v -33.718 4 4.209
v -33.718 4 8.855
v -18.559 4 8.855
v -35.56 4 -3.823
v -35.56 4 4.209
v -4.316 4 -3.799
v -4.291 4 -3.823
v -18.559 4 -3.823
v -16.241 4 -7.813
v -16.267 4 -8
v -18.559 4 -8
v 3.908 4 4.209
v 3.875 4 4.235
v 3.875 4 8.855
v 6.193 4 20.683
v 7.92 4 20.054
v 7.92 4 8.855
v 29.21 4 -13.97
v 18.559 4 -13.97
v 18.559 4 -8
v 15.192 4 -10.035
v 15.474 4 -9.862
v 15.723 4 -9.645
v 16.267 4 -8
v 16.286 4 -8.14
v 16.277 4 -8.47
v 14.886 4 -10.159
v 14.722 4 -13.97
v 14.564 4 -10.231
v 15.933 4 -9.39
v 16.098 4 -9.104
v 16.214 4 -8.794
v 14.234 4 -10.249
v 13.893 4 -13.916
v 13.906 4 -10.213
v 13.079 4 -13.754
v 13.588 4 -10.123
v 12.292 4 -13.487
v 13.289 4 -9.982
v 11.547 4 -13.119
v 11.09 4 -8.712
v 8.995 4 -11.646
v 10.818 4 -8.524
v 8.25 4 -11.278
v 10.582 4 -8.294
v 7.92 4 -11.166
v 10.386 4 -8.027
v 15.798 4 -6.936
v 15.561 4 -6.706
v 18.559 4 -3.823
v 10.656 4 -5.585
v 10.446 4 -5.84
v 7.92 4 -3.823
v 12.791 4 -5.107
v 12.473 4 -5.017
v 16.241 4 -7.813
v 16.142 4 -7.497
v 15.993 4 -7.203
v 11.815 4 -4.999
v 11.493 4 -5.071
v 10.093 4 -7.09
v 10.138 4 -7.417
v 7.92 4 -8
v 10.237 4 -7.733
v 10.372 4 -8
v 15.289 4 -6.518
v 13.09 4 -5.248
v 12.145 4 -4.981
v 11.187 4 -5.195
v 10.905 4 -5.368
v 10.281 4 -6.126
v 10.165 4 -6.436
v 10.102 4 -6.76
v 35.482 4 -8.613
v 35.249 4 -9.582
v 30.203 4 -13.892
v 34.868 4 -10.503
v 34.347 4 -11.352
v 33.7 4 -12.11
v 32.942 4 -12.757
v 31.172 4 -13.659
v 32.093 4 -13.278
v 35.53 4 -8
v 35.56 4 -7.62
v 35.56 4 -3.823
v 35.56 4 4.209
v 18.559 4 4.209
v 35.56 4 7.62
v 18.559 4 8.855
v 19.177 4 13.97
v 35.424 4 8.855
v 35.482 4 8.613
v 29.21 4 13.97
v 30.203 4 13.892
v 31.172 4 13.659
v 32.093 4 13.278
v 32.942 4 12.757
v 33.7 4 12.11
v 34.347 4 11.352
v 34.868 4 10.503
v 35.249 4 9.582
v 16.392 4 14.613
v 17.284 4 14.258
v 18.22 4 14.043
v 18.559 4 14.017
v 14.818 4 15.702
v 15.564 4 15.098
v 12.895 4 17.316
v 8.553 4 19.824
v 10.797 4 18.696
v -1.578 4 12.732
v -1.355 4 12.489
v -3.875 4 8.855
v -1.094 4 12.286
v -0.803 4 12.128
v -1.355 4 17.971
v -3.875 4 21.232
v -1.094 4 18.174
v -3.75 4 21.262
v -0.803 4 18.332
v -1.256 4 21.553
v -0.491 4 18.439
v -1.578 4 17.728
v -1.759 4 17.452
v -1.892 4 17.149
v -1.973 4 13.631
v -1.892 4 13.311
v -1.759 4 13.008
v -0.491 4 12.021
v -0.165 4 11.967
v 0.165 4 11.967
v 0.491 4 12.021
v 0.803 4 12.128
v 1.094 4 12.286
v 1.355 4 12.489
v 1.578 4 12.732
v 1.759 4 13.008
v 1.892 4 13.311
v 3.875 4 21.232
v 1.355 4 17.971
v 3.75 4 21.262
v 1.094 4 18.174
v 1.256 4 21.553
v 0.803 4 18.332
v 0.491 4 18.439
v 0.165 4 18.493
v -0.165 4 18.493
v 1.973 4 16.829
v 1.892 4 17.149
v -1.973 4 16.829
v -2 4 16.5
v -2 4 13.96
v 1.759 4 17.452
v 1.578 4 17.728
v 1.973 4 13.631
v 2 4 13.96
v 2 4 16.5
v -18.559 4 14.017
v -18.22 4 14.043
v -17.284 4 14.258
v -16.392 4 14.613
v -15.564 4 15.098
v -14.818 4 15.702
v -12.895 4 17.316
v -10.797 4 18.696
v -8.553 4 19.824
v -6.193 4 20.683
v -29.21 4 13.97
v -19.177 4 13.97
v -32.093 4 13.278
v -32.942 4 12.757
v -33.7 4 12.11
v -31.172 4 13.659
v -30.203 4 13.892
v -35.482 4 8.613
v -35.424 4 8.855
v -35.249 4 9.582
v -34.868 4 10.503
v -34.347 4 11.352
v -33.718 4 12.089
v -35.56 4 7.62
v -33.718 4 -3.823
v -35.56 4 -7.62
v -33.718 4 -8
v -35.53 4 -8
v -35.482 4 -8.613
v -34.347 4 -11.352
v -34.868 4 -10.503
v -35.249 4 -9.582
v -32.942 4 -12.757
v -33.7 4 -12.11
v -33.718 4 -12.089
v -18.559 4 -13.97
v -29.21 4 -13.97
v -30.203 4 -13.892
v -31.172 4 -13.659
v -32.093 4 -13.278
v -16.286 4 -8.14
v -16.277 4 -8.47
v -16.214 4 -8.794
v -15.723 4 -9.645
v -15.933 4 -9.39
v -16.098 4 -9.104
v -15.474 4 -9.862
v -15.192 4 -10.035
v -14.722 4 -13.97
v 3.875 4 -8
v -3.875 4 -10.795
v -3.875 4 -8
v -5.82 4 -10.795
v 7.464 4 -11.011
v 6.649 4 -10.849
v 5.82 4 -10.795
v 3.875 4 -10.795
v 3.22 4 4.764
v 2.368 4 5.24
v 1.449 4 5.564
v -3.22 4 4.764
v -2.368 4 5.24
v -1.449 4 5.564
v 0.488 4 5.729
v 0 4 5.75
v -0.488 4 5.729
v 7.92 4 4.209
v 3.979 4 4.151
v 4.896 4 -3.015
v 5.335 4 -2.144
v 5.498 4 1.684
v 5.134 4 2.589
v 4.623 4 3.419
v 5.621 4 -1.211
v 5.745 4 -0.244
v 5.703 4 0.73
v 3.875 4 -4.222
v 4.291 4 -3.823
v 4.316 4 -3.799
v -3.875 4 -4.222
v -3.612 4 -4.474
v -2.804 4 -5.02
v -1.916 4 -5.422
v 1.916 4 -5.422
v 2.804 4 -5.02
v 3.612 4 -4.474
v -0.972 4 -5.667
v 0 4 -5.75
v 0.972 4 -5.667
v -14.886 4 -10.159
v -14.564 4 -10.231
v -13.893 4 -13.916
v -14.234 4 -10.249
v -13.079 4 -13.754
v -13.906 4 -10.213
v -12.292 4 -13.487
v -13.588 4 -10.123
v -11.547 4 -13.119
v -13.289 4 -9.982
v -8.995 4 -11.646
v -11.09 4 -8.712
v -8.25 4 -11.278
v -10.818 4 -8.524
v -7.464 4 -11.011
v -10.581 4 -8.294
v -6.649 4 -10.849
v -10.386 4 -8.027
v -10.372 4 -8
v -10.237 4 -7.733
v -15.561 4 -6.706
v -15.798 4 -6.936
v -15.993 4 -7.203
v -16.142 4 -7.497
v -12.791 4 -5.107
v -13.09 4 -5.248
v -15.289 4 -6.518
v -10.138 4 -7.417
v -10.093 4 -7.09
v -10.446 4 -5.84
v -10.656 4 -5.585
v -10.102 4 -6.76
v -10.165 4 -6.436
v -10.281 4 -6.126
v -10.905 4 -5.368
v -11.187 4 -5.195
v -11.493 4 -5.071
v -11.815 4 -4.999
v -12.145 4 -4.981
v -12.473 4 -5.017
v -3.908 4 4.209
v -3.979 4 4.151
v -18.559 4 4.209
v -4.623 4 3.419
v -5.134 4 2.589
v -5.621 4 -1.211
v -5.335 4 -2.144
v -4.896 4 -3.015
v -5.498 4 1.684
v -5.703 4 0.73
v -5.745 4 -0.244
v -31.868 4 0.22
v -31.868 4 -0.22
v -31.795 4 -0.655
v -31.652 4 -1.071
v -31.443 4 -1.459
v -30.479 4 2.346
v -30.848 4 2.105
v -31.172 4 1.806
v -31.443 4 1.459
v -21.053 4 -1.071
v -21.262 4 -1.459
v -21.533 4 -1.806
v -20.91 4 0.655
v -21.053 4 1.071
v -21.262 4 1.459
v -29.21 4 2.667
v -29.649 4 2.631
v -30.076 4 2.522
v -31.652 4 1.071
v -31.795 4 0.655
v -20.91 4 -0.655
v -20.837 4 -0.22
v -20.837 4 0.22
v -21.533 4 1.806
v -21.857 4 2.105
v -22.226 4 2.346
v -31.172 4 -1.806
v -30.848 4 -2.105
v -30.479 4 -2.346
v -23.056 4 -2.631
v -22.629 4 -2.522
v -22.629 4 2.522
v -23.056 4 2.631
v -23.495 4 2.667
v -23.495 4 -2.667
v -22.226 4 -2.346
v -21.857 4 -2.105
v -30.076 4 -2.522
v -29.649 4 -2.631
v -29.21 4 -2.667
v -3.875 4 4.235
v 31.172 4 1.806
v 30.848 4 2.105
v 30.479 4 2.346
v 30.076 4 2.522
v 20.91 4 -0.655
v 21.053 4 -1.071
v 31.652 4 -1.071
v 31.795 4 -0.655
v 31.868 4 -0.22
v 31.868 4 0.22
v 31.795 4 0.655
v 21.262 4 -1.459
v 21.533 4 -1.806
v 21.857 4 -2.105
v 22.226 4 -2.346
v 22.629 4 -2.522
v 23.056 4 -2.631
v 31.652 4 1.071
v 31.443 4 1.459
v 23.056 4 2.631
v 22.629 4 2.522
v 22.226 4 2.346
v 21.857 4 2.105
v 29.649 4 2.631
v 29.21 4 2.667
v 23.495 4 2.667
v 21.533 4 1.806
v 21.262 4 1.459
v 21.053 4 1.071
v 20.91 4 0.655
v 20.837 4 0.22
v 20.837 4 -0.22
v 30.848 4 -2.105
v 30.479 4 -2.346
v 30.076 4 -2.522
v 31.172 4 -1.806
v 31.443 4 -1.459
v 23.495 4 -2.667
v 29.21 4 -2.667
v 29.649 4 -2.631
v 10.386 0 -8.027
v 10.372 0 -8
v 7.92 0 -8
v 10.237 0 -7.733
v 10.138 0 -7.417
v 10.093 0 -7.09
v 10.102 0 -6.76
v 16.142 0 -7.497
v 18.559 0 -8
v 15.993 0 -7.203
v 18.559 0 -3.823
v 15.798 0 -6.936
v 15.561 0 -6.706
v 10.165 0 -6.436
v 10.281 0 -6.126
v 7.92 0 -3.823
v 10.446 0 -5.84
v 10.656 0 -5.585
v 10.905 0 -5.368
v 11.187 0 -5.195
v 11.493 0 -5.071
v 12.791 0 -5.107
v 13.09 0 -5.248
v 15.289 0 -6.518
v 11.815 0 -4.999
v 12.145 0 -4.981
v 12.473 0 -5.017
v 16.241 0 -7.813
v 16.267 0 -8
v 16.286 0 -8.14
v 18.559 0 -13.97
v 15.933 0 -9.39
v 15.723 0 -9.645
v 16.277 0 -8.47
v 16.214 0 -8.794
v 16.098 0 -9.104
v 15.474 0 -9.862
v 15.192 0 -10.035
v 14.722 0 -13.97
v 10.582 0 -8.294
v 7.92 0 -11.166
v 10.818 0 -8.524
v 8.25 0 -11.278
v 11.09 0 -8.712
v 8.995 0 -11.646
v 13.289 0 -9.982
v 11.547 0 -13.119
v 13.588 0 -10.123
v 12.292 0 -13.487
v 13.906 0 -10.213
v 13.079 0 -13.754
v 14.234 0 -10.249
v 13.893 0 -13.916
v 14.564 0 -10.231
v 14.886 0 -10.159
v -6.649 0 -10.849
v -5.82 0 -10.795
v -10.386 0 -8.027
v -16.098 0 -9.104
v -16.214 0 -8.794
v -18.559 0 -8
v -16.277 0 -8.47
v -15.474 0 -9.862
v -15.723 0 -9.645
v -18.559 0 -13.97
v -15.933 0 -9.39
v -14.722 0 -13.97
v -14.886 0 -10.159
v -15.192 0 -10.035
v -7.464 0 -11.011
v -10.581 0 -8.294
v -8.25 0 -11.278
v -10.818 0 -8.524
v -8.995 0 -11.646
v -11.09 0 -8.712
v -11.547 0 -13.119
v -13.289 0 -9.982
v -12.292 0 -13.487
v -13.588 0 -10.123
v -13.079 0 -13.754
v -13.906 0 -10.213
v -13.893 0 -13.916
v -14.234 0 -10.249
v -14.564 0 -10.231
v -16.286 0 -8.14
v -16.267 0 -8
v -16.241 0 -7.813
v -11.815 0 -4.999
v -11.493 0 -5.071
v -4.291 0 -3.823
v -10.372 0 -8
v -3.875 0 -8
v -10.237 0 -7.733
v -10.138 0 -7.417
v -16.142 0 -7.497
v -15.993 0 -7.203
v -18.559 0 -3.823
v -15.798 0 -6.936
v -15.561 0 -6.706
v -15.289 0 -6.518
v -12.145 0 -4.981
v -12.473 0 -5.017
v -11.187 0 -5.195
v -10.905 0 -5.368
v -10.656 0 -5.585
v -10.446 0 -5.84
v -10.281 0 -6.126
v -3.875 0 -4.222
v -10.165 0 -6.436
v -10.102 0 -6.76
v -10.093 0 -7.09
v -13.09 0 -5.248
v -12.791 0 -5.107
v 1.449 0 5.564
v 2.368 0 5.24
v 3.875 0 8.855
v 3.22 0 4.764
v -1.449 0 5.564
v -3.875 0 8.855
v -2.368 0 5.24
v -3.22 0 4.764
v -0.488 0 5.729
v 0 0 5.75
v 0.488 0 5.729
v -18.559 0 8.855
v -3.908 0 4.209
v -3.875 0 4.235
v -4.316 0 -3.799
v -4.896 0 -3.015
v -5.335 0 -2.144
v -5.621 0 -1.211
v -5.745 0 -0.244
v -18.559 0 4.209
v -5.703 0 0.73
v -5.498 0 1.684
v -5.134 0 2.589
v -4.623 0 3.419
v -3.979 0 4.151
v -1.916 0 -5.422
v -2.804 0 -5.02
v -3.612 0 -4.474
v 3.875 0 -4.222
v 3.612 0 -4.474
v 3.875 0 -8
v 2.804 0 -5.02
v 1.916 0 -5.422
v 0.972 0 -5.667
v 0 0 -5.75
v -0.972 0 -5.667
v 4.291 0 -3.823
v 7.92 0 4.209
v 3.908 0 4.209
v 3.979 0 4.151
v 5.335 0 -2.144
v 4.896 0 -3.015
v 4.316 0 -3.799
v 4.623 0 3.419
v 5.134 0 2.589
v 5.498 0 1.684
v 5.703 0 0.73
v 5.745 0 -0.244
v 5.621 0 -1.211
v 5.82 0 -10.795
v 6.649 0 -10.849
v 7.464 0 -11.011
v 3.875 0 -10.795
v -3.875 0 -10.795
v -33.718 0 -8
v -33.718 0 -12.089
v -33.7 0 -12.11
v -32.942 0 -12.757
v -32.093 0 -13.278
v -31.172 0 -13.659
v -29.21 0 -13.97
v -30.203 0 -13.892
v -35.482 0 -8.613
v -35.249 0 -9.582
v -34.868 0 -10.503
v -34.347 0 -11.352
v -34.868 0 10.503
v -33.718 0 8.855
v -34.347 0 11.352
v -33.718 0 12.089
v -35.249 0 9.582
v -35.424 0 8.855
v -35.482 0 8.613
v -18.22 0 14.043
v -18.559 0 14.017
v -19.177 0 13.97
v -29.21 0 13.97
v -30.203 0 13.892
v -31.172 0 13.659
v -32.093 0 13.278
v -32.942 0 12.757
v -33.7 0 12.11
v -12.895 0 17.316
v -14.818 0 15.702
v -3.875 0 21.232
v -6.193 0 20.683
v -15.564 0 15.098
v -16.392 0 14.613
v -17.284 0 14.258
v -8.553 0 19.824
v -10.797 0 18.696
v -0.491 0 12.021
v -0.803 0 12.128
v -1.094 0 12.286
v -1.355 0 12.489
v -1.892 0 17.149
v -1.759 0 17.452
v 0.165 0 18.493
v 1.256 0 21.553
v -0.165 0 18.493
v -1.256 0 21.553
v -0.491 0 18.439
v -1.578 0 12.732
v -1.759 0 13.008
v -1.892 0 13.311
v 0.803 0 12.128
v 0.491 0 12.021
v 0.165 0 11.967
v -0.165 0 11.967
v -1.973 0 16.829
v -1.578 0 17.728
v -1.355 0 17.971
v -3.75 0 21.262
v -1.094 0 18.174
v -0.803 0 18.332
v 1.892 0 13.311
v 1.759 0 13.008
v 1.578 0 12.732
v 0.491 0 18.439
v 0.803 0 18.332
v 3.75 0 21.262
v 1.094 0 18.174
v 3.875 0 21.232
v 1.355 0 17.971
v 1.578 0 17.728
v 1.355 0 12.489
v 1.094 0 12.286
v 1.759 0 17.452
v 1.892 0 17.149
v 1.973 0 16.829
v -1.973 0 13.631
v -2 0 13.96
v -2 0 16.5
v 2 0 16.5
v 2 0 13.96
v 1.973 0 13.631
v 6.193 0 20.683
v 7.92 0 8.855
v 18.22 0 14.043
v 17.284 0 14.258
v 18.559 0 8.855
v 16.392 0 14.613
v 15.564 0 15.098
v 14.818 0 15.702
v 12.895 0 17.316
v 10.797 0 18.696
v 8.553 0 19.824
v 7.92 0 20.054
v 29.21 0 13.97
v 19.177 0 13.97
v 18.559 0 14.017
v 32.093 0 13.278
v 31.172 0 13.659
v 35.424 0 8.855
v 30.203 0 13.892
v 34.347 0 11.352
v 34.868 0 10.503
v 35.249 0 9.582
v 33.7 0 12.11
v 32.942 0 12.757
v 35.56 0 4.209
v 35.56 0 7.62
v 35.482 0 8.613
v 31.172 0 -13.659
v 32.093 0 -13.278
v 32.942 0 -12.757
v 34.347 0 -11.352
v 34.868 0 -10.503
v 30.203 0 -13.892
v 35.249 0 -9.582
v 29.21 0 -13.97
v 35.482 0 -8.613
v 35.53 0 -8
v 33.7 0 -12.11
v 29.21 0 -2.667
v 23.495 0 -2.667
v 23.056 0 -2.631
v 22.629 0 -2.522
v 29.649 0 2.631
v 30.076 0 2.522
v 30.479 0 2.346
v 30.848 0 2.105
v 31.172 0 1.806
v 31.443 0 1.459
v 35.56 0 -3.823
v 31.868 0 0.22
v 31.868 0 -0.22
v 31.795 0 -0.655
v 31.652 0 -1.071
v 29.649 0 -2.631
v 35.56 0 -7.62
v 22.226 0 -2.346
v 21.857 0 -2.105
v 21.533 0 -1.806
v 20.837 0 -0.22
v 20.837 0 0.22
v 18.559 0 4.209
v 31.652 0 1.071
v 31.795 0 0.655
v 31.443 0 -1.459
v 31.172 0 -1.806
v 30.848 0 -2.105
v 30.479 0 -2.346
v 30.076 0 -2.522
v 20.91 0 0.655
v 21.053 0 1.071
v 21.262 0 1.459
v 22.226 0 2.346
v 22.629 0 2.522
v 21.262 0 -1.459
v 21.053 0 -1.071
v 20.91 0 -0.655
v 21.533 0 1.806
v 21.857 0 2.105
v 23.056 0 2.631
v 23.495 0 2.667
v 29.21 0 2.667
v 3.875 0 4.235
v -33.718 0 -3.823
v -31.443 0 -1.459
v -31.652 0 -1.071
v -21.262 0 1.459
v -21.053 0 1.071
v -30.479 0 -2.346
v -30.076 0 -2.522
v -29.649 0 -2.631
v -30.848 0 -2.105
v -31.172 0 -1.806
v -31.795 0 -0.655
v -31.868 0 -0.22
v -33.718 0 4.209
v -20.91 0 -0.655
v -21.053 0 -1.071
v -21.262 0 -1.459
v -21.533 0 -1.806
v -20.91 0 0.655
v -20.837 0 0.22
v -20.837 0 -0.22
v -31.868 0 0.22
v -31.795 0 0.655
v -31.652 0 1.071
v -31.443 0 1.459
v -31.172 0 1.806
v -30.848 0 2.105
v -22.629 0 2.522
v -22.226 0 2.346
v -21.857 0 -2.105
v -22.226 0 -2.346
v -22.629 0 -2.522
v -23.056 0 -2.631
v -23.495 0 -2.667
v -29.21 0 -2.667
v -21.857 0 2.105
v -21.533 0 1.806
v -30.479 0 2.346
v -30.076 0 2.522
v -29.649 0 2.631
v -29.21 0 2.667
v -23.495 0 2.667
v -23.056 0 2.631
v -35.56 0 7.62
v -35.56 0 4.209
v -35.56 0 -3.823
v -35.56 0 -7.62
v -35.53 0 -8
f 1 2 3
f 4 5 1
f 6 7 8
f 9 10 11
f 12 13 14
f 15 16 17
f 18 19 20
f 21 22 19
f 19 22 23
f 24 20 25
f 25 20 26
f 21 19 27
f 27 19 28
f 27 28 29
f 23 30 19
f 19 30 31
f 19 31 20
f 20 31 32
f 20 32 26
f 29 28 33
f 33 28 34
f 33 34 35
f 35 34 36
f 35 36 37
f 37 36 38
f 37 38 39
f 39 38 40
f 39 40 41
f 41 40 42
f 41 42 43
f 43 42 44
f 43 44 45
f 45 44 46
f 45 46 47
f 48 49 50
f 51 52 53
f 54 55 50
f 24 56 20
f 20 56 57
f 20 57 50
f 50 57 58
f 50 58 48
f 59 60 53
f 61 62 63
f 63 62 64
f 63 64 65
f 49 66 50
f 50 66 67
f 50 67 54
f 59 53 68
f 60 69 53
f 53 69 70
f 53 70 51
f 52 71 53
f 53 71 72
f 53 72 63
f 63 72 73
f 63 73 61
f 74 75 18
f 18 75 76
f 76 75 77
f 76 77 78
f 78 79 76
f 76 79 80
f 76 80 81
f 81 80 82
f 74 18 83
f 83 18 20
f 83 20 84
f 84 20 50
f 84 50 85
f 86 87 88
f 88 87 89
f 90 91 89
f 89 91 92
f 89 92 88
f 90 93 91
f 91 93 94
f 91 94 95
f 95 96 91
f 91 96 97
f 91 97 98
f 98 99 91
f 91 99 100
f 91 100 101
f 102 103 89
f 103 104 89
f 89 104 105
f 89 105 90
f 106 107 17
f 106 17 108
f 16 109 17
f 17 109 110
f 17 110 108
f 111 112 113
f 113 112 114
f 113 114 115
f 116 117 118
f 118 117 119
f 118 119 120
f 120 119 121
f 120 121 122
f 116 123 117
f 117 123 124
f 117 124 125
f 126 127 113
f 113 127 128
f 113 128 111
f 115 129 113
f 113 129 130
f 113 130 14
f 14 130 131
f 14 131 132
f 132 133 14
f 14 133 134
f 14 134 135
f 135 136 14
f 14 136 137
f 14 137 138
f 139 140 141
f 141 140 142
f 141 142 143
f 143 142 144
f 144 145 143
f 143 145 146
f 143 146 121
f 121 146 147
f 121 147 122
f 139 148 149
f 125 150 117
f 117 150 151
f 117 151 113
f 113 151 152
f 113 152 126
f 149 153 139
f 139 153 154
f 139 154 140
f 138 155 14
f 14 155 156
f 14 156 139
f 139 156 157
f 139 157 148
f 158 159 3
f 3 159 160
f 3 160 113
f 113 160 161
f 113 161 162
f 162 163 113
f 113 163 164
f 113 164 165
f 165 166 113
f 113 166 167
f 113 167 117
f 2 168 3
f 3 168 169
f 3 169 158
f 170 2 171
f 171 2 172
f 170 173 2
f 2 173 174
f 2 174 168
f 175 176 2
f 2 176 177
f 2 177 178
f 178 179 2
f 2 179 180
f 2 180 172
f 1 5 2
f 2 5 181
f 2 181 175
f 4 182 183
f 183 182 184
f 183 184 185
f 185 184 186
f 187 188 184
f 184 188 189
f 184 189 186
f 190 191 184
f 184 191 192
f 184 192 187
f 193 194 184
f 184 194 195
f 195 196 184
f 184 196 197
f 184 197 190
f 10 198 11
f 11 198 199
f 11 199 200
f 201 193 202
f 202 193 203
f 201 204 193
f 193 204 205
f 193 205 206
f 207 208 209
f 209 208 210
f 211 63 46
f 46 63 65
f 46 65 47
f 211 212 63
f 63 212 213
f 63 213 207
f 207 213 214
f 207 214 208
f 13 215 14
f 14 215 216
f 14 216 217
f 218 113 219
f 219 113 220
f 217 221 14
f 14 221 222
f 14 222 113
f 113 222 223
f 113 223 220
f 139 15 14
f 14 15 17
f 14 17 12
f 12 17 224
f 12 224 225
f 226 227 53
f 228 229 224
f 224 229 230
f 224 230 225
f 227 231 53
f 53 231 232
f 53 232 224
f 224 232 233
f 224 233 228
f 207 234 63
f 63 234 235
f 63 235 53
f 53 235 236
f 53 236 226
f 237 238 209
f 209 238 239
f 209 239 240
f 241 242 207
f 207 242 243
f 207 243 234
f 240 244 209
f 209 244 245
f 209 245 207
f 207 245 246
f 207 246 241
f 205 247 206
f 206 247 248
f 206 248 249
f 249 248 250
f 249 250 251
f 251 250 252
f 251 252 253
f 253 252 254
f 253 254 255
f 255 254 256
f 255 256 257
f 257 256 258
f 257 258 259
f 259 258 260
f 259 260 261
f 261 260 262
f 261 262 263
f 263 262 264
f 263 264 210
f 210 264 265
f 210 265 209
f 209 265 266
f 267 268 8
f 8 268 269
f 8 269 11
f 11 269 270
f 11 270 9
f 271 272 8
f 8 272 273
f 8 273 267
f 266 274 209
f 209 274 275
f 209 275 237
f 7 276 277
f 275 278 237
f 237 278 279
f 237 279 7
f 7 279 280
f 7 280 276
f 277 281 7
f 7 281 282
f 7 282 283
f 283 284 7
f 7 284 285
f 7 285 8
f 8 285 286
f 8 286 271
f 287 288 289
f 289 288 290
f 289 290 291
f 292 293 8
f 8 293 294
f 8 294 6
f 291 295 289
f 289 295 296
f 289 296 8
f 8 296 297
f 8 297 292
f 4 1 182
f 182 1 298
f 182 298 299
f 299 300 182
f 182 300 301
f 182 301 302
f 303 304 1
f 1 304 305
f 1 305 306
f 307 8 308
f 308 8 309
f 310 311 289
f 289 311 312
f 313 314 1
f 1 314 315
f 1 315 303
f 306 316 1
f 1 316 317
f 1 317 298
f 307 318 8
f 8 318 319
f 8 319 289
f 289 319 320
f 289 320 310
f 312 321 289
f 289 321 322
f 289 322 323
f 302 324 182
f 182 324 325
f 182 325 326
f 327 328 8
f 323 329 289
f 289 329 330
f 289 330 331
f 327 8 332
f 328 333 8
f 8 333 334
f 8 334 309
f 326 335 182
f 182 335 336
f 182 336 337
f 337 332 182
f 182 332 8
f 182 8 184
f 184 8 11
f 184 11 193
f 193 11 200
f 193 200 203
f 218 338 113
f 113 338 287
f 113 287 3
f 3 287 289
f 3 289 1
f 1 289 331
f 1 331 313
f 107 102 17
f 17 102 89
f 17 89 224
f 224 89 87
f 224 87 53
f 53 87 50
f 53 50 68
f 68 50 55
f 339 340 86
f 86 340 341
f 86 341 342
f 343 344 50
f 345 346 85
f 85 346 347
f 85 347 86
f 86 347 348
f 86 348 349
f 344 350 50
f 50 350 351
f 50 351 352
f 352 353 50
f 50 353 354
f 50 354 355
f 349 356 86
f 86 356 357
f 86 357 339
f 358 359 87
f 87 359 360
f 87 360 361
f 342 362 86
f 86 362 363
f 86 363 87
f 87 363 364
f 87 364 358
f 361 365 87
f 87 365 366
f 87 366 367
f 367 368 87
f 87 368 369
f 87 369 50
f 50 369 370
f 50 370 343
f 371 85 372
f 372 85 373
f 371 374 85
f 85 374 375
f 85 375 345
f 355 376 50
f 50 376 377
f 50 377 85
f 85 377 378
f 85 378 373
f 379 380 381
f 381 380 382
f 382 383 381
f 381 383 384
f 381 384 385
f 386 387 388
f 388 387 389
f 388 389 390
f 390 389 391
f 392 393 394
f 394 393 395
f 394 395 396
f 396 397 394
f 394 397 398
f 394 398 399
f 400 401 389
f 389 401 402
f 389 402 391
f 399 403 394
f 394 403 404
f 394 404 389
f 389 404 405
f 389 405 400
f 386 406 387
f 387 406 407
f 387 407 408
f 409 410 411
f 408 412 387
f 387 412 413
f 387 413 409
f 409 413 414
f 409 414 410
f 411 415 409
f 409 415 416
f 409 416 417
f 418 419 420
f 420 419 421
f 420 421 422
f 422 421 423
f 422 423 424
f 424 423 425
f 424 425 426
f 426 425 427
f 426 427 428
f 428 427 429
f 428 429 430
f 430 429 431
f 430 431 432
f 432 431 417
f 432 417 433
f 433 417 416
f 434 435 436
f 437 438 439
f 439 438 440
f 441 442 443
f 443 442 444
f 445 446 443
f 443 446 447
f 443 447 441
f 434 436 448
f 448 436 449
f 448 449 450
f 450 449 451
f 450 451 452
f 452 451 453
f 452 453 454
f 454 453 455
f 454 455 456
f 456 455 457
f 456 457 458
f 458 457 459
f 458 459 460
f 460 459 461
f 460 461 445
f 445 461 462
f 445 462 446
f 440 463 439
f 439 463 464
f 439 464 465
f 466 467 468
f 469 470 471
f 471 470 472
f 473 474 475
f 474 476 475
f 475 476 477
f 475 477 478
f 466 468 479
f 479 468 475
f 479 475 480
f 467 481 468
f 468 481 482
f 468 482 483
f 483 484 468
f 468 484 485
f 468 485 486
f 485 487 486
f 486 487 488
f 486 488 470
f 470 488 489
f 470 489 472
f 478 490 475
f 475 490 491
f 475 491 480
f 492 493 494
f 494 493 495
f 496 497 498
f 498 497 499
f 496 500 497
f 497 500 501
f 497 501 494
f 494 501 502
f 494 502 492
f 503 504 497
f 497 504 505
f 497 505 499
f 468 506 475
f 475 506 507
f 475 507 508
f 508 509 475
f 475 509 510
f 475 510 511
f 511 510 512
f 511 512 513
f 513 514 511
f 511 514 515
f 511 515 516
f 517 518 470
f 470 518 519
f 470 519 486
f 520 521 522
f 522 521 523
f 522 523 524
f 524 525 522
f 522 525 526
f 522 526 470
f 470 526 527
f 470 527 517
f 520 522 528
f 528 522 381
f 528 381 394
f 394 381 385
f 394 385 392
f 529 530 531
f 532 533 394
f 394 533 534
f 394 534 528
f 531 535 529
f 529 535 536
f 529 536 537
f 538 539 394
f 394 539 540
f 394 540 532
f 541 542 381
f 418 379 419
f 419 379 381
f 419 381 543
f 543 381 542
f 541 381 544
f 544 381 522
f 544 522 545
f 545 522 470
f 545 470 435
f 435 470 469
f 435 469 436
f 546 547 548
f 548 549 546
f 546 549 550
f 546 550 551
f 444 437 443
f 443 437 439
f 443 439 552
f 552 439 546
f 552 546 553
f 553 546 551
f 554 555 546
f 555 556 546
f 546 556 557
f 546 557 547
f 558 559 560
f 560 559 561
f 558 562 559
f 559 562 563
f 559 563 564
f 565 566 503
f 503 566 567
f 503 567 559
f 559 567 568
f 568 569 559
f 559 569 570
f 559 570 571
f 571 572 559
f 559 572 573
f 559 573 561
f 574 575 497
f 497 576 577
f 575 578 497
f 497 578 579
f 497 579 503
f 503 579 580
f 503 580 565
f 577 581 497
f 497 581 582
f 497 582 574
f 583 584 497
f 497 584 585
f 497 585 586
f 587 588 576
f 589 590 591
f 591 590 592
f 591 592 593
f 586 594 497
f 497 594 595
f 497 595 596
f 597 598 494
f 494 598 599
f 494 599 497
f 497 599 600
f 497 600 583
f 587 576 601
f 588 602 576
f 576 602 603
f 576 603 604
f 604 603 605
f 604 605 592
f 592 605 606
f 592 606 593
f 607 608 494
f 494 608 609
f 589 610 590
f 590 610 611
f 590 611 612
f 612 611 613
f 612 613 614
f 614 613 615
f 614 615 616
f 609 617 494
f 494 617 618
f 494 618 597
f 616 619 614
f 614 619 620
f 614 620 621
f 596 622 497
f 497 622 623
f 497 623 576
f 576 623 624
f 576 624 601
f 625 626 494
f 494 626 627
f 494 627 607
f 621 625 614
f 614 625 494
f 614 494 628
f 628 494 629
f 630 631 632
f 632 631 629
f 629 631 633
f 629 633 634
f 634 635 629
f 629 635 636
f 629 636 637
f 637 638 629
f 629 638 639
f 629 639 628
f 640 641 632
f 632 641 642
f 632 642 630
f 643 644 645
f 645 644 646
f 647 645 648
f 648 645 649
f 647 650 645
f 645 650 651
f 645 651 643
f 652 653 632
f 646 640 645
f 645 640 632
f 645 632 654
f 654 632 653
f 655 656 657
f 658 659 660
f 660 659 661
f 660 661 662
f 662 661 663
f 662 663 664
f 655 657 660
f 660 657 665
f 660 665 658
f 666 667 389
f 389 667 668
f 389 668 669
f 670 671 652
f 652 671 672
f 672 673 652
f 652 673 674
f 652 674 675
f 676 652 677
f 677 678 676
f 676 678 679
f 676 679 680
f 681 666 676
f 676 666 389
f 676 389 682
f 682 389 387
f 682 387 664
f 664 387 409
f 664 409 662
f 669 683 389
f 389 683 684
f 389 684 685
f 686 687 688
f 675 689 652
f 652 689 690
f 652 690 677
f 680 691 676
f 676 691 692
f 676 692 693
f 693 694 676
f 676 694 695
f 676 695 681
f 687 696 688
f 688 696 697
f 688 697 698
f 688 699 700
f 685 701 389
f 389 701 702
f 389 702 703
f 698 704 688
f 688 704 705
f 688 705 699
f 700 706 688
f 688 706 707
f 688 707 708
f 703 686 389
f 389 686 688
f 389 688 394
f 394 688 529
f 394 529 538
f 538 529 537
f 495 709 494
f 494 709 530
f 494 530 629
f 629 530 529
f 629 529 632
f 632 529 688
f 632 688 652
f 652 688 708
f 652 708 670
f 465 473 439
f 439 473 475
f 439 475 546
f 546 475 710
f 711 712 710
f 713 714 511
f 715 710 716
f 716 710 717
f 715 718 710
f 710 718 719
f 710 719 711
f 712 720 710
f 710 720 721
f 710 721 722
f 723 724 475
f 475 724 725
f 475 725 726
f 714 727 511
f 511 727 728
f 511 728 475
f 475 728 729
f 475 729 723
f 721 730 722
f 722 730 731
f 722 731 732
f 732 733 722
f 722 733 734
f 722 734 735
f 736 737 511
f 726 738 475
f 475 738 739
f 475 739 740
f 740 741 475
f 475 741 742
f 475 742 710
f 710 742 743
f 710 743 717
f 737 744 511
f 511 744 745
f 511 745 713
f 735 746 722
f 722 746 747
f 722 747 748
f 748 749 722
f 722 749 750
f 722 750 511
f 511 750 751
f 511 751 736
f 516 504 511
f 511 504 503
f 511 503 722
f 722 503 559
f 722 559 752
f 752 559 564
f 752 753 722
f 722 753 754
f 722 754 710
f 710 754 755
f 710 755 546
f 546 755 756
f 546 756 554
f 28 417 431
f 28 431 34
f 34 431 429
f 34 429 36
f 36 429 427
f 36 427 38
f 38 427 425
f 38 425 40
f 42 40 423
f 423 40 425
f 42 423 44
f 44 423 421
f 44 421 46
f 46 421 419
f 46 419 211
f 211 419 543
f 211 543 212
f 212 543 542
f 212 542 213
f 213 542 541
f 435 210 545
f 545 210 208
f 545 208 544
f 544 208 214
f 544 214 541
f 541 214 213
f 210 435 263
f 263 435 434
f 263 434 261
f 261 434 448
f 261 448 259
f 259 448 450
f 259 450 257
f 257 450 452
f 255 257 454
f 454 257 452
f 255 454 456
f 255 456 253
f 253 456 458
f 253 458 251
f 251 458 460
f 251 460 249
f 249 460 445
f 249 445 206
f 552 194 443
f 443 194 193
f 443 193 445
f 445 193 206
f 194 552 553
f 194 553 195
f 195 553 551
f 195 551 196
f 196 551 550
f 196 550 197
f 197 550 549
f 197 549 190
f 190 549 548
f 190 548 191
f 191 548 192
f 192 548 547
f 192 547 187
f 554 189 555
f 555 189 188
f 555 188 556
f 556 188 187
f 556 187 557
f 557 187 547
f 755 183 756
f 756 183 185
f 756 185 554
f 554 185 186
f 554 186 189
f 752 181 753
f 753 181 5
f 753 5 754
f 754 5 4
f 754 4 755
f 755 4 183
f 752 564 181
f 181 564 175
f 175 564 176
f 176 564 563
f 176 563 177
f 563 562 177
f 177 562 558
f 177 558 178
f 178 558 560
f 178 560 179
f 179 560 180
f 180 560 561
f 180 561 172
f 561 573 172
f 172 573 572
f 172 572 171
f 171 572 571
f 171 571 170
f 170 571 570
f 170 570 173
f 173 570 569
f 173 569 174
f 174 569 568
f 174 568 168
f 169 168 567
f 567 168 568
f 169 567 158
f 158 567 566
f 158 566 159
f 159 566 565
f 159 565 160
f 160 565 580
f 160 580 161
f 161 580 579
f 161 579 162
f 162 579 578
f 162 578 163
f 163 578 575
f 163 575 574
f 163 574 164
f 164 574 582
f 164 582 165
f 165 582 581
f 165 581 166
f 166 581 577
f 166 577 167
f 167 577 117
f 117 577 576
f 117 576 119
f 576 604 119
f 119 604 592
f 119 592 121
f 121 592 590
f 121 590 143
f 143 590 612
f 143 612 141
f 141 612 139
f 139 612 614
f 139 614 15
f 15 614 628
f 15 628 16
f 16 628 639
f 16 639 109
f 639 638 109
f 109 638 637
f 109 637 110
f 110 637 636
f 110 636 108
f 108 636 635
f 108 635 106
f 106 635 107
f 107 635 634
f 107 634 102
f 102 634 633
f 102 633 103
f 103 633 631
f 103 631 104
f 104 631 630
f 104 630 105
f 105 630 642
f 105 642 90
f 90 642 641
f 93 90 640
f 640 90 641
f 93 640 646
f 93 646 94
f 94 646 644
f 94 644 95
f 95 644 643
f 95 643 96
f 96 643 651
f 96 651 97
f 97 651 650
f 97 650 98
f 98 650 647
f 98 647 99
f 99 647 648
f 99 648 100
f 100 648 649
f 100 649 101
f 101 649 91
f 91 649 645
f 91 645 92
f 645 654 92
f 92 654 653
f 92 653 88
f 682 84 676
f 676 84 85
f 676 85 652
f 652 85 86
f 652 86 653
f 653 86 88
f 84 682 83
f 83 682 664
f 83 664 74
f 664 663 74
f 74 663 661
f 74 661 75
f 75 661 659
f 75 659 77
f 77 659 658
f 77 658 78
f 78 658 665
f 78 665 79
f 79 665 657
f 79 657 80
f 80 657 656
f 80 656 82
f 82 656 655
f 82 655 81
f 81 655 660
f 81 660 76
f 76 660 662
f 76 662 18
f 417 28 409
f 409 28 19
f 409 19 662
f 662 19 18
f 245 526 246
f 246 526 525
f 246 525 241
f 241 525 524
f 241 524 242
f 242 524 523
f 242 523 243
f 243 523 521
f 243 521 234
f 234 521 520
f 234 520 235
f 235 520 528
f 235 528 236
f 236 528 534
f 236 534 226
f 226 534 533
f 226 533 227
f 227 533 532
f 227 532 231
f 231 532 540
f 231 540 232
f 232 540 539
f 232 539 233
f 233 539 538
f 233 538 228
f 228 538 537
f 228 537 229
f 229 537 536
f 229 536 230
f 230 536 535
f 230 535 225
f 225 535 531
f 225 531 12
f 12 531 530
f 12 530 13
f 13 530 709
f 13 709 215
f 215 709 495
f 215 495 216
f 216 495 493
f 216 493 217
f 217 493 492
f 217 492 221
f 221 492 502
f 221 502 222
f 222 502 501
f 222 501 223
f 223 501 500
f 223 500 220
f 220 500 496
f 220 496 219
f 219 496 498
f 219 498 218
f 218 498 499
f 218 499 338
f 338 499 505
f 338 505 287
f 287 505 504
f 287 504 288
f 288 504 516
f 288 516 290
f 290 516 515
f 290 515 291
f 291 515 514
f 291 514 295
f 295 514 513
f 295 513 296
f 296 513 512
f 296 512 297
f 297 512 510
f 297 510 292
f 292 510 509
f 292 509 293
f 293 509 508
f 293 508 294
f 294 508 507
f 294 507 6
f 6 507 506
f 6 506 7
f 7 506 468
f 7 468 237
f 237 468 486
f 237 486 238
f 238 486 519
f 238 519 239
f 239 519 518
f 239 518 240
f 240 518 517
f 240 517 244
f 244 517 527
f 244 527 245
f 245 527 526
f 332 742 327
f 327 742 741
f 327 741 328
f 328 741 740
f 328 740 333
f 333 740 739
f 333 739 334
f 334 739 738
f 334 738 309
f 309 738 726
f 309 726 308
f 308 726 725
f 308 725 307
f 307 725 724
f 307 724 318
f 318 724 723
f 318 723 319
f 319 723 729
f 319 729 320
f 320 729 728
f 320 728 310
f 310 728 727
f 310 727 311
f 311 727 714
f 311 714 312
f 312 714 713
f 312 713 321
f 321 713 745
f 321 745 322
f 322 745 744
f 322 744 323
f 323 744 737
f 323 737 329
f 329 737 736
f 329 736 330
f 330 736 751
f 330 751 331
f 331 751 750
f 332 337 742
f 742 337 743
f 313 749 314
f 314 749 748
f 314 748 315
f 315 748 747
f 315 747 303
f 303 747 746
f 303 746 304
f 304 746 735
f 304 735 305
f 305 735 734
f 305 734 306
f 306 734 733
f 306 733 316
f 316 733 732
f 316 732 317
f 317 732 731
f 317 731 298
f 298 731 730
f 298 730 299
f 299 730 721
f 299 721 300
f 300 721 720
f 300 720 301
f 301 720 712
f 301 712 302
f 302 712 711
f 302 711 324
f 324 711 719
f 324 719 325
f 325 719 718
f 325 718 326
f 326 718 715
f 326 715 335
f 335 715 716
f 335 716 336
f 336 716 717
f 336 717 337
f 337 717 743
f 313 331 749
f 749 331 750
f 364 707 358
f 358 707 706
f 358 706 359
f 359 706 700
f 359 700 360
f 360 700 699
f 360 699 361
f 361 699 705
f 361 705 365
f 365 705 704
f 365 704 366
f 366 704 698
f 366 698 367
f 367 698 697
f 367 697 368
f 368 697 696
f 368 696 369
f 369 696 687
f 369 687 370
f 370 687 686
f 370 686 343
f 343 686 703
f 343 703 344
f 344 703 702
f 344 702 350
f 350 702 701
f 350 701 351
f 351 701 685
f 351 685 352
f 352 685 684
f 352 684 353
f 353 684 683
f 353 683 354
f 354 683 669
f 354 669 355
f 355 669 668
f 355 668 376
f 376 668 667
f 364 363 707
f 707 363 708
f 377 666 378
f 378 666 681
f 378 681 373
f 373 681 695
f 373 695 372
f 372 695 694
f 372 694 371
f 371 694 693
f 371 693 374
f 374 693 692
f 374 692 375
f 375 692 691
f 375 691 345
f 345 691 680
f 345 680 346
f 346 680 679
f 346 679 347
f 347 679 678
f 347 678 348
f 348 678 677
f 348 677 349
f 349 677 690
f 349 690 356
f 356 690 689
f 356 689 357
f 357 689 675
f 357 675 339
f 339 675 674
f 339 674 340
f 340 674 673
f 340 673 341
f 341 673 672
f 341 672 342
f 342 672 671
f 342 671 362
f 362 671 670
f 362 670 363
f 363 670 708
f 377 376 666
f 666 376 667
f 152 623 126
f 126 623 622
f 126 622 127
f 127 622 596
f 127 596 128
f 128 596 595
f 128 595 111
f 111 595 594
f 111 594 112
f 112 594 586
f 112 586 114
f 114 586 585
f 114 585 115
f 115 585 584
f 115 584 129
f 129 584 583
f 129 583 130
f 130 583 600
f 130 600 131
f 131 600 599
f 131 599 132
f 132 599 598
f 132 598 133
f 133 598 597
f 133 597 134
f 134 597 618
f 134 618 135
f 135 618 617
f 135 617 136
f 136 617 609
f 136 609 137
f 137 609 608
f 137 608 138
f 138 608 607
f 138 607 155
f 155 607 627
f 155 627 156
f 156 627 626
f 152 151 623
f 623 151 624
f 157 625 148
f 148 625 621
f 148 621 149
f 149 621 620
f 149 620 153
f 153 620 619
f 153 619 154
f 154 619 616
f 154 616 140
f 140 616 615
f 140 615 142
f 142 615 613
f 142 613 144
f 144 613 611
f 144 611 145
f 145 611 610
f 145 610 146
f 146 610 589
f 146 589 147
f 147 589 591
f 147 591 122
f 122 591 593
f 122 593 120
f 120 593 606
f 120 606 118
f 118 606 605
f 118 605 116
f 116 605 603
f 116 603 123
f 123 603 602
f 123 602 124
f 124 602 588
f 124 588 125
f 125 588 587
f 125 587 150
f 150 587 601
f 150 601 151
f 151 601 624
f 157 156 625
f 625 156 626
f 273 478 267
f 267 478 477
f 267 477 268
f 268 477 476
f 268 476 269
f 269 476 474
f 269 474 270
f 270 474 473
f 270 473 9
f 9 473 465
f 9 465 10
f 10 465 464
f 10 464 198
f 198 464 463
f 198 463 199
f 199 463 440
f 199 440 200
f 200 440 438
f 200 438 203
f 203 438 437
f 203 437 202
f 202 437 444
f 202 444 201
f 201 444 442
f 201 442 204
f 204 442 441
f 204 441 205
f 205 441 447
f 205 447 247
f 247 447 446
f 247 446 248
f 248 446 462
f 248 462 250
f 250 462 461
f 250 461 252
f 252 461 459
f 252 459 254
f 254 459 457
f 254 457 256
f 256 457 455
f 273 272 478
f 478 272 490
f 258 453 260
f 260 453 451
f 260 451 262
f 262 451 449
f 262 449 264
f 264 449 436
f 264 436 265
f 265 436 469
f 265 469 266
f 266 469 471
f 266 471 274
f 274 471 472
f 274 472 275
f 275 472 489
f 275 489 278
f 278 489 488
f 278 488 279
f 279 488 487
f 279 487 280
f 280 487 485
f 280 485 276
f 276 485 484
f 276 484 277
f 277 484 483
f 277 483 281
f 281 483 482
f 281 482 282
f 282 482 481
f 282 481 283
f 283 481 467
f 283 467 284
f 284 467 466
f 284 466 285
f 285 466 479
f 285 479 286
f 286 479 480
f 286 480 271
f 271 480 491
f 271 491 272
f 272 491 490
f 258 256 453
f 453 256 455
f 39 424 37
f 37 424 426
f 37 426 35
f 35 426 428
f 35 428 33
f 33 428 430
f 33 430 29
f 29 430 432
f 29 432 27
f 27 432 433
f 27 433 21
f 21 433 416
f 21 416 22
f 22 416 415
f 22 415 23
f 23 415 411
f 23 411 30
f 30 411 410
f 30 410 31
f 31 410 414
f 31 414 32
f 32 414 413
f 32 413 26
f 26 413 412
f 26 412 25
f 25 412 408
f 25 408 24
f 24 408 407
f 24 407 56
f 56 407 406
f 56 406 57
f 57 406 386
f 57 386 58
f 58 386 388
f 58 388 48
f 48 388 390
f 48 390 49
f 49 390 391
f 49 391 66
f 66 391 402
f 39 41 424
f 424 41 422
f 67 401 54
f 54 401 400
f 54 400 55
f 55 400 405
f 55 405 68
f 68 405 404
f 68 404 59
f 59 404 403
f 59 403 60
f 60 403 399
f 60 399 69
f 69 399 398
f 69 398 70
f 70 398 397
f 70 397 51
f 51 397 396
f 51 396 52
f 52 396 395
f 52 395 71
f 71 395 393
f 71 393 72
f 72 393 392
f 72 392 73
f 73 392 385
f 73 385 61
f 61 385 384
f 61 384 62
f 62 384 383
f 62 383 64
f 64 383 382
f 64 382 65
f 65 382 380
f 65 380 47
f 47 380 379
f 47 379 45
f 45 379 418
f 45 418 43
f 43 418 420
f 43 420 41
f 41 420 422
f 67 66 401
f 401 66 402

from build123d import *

# Parameters (mm, degrees)
SKETCH1_R           = 5.75
BOSS_EXTRUDE1_DEPTH = 4


with BuildPart() as part:
    # Sketch1 → Boss-Extrude1 (new body)
    with BuildSketch(Plane(origin=(0, 0, 0), x_dir=(1, 0, 0), z_dir=(0, 1, 0))):
        with BuildLine():
            Line((14.722227154, 13.97), (29.21, 13.97))
            ThreePointArc((29.21, 13.97), (33.700128061, 12.110128061), (35.56, 7.62))
            Line((35.56, 7.62), (35.56, -7.62))
            ThreePointArc((35.56, -7.62), (33.700128061, -12.110128061), (29.21, -13.97))
            Line((29.21, -13.97), (19.176579466, -13.97))
            ThreePointArc((19.176579466, -13.97), (16.831686562, -14.418815604), (14.818265951, -15.701818182))
            ThreePointArc((14.818265951, -15.701818182), (0, -21.59), (-14.818265951, -15.701818182))
            ThreePointArc((-14.818265951, -15.701818182), (-16.831686562, -14.418815604), (-19.176579466, -13.97))
            Line((-19.176579466, -13.97), (-29.21, -13.97))
            ThreePointArc((-29.21, -13.97), (-33.700128061, -12.110128061), (-35.56, -7.62))
            Line((-35.56, -7.62), (-35.56, 7.62))
            ThreePointArc((-35.56, 7.62), (-33.700128061, 12.110128061), (-29.21, 13.97))
            Line((-29.21, 13.97), (-14.722227154, 13.97))
            ThreePointArc((-14.722227154, 13.97), (-13.078726217, 13.753628997), (-11.547227154, 13.119261314))
            Line((-11.547227154, 13.119261314), (-8.995011096, 11.645738686))
            ThreePointArc((-8.995011096, 11.645738686), (-7.463512032, 11.011371003), (-5.820011096, 10.795))
            Line((-5.820011096, 10.795), (5.820011096, 10.795))
            ThreePointArc((5.820011096, 10.795), (7.463512032, 11.011371003), (8.995011096, 11.645738686))
            Line((8.995011096, 11.645738686), (11.547227154, 13.119261314))
            ThreePointArc((11.547227154, 13.119261314), (13.078726217, 13.753628997), (14.722227154, 13.97))
        make_face()
        Circle(SKETCH1_R, mode=Mode.SUBTRACT)
        with BuildLine():
            Line((-23.495, -2.667), (-29.21, -2.667))
            ThreePointArc((-29.21, -2.667), (-31.877, 0), (-29.21, 2.667))
            Line((-29.21, 2.667), (-23.495, 2.667))
            ThreePointArc((-23.495, 2.667), (-20.828, 0), (-23.495, -2.667))
        make_face(mode=Mode.SUBTRACT)
        with BuildLine():
            Line((23.495, 2.667), (29.21, 2.667))
            ThreePointArc((29.21, 2.667), (31.877, 0), (29.21, -2.667))
            Line((29.21, -2.667), (23.495, -2.667))
            ThreePointArc((23.495, -2.667), (20.828, 0), (23.495, 2.667))
        make_face(mode=Mode.SUBTRACT)
        with BuildLine():
            Line((-15.289419162, 6.517949192), (-13.089714637, 5.247949192))
            ThreePointArc((-13.089714637, 5.247949192), (-10.357663829, 5.98), (-11.089714637, 8.712050808))
            Line((-11.089714637, 8.712050808), (-13.289419162, 9.982050808))
            ThreePointArc((-13.289419162, 9.982050808), (-16.02146997, 9.25), (-15.289419162, 6.517949192))
        make_face(mode=Mode.SUBTRACT)
        with BuildLine():
            Line((13.289419162, 9.982050808), (11.089714637, 8.712050808))
            ThreePointArc((11.089714637, 8.712050808), (10.357663829, 5.98), (13.089714637, 5.247949192))
            Line((13.089714637, 5.247949192), (15.289419162, 6.517949192))
            ThreePointArc((15.289419162, 6.517949192), (16.02146997, 9.25), (13.289419162, 9.982050808))
        make_face(mode=Mode.SUBTRACT)
        with BuildLine():
            Line((2, -16.5), (2, -13.96))
            ThreePointArc((2, -13.96), (0, -11.96), (-2, -13.96))
            Line((-2, -13.96), (-2, -16.5))
            ThreePointArc((-2, -16.5), (0, -18.5), (2, -16.5))
        make_face(mode=Mode.SUBTRACT)
    extrude(amount=BOSS_EXTRUDE1_DEPTH)


solid = part.part
